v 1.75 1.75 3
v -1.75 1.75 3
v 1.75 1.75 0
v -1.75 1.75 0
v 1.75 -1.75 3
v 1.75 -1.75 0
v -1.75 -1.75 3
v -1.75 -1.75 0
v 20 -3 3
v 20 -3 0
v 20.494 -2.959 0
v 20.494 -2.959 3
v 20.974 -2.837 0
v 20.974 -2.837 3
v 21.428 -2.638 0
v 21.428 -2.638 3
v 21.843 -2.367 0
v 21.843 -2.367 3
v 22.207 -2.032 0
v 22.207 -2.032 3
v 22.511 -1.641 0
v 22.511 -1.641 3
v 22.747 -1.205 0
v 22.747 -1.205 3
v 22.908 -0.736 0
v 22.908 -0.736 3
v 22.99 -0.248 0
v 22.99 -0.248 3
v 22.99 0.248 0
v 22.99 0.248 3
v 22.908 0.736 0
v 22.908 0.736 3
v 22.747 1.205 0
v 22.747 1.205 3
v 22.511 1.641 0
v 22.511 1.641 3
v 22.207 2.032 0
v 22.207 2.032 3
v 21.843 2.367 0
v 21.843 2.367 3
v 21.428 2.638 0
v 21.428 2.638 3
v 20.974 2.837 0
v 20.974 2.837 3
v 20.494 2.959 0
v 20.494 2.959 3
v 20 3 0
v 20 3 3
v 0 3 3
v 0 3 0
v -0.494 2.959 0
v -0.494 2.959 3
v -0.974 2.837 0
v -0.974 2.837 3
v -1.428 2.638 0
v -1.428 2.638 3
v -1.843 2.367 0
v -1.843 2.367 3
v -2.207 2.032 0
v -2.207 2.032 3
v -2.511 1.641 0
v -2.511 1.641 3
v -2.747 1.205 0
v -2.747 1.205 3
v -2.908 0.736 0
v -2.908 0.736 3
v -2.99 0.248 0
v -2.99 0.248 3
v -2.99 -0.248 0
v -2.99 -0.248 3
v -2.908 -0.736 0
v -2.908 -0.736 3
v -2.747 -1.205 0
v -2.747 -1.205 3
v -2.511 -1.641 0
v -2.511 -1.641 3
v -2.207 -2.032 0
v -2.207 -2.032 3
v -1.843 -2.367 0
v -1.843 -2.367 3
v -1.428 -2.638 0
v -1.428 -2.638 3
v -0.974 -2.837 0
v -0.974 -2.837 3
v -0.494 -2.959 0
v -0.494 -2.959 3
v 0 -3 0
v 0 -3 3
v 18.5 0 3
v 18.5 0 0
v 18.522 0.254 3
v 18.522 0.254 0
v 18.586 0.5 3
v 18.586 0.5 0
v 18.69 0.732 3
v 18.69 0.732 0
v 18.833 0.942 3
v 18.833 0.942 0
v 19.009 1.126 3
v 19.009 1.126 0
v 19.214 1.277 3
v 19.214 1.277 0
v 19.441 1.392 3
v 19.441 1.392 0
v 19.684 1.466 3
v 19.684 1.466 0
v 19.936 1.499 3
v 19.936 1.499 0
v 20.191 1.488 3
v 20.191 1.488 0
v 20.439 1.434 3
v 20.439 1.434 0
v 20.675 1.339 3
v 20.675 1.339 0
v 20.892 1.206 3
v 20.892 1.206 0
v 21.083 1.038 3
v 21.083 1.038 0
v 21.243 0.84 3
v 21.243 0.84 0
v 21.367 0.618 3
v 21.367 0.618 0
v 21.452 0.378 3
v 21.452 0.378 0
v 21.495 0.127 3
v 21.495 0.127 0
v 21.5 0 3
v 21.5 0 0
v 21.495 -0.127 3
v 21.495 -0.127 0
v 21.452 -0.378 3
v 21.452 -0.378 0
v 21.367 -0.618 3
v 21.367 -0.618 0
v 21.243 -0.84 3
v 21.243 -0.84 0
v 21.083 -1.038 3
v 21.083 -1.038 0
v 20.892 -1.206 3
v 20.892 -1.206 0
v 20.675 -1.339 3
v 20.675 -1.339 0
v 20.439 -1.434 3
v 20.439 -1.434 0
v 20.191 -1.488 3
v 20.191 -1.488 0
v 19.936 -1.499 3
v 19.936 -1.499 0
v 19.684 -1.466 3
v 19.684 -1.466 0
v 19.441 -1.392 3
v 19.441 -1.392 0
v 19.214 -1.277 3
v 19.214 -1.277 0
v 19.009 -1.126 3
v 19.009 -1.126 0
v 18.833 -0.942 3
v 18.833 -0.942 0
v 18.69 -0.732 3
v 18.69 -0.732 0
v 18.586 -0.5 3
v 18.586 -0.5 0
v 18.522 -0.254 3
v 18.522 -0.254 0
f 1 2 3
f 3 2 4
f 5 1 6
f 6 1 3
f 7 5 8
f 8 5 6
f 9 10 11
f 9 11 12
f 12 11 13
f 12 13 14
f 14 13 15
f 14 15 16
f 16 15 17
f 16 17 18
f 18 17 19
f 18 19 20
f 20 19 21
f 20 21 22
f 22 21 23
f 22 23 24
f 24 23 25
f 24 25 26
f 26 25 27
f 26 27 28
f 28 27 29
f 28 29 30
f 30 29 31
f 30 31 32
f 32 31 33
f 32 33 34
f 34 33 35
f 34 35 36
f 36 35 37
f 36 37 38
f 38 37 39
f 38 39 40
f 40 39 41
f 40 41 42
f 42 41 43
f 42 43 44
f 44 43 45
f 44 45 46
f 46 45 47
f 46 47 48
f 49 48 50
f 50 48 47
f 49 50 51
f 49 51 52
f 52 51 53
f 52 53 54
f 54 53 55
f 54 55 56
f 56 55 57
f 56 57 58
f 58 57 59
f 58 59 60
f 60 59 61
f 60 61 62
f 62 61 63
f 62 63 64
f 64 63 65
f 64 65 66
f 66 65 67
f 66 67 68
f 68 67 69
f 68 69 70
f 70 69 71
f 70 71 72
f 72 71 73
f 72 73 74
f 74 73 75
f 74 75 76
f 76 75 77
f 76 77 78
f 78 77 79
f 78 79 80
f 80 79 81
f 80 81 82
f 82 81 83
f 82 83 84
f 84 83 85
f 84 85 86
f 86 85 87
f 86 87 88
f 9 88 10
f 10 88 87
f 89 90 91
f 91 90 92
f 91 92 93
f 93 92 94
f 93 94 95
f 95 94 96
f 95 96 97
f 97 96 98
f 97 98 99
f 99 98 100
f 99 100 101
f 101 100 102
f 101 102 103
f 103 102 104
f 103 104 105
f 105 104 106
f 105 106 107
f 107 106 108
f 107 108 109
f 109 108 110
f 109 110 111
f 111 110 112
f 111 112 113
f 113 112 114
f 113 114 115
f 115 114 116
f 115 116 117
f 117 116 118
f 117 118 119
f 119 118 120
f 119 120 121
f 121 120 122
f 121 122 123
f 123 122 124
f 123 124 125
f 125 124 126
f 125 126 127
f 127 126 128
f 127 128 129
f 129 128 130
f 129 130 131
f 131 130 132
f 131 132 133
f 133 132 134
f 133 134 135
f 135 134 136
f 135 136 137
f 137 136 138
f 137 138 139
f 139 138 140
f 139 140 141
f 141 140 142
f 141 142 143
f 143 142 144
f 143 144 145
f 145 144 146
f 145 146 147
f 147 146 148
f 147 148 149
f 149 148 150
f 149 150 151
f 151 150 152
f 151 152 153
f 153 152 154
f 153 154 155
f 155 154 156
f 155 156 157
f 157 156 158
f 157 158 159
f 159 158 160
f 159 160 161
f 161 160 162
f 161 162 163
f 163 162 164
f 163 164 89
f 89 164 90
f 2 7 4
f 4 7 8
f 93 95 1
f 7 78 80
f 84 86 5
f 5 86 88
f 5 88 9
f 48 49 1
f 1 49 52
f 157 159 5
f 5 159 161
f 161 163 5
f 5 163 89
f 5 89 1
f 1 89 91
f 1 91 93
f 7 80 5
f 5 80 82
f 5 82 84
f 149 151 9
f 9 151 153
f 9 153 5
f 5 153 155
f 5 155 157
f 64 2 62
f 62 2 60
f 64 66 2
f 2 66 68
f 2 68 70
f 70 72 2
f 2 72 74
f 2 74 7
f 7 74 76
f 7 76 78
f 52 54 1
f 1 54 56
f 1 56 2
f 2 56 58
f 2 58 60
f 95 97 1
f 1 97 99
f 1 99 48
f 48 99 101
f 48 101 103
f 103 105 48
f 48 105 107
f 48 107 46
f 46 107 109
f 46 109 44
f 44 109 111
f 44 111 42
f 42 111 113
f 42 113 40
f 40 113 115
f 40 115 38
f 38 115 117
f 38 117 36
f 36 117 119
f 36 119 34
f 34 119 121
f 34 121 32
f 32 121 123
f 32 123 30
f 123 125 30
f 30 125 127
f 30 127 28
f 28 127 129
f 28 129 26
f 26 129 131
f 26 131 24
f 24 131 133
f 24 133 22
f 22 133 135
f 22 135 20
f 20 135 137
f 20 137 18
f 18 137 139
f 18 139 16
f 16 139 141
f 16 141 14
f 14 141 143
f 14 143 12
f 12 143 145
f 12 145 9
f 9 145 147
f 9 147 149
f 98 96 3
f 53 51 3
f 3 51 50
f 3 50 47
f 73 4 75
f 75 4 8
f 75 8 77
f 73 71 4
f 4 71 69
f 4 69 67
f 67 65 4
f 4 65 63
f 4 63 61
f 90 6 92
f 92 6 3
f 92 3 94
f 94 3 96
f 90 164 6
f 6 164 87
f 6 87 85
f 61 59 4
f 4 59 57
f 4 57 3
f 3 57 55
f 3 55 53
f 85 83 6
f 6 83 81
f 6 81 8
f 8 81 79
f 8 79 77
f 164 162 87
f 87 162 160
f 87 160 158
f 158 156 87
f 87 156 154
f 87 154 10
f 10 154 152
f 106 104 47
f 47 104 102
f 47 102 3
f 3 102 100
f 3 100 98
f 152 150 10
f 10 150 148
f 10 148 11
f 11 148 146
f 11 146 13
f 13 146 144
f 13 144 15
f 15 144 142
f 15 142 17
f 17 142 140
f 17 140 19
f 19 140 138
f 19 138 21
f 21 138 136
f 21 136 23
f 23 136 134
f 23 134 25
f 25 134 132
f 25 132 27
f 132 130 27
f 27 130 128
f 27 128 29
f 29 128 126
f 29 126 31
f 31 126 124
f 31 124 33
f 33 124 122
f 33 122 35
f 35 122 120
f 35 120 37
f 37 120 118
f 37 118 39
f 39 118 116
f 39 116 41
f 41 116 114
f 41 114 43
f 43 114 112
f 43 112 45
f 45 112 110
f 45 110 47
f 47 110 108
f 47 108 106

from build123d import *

# Parameters (mm, degrees)
ESQUISSE1_R        = 1.5
ESQUISSE1_W        = 3.5
ESQUISSE1_H        = 3.5
BOSS_EXTRU_1_DEPTH = 3


with BuildPart() as part:
    # Esquisse1 → Boss.-Extru.1 (new body)
    with BuildSketch(Plane.XY):
        with BuildLine():
            Line((0, 3), (20, 3))
            ThreePointArc((20, 3), (23, 0), (20, -3))
            Line((20, -3), (0, -3))
            ThreePointArc((0, -3), (-3, 0), (0, 3))
        make_face()
        with Locations((20, 0)):
            Circle(ESQUISSE1_R, mode=Mode.SUBTRACT)
        Rectangle(ESQUISSE1_W, ESQUISSE1_H, mode=Mode.SUBTRACT)
    extrude(amount=BOSS_EXTRU_1_DEPTH)


solid = part.part
